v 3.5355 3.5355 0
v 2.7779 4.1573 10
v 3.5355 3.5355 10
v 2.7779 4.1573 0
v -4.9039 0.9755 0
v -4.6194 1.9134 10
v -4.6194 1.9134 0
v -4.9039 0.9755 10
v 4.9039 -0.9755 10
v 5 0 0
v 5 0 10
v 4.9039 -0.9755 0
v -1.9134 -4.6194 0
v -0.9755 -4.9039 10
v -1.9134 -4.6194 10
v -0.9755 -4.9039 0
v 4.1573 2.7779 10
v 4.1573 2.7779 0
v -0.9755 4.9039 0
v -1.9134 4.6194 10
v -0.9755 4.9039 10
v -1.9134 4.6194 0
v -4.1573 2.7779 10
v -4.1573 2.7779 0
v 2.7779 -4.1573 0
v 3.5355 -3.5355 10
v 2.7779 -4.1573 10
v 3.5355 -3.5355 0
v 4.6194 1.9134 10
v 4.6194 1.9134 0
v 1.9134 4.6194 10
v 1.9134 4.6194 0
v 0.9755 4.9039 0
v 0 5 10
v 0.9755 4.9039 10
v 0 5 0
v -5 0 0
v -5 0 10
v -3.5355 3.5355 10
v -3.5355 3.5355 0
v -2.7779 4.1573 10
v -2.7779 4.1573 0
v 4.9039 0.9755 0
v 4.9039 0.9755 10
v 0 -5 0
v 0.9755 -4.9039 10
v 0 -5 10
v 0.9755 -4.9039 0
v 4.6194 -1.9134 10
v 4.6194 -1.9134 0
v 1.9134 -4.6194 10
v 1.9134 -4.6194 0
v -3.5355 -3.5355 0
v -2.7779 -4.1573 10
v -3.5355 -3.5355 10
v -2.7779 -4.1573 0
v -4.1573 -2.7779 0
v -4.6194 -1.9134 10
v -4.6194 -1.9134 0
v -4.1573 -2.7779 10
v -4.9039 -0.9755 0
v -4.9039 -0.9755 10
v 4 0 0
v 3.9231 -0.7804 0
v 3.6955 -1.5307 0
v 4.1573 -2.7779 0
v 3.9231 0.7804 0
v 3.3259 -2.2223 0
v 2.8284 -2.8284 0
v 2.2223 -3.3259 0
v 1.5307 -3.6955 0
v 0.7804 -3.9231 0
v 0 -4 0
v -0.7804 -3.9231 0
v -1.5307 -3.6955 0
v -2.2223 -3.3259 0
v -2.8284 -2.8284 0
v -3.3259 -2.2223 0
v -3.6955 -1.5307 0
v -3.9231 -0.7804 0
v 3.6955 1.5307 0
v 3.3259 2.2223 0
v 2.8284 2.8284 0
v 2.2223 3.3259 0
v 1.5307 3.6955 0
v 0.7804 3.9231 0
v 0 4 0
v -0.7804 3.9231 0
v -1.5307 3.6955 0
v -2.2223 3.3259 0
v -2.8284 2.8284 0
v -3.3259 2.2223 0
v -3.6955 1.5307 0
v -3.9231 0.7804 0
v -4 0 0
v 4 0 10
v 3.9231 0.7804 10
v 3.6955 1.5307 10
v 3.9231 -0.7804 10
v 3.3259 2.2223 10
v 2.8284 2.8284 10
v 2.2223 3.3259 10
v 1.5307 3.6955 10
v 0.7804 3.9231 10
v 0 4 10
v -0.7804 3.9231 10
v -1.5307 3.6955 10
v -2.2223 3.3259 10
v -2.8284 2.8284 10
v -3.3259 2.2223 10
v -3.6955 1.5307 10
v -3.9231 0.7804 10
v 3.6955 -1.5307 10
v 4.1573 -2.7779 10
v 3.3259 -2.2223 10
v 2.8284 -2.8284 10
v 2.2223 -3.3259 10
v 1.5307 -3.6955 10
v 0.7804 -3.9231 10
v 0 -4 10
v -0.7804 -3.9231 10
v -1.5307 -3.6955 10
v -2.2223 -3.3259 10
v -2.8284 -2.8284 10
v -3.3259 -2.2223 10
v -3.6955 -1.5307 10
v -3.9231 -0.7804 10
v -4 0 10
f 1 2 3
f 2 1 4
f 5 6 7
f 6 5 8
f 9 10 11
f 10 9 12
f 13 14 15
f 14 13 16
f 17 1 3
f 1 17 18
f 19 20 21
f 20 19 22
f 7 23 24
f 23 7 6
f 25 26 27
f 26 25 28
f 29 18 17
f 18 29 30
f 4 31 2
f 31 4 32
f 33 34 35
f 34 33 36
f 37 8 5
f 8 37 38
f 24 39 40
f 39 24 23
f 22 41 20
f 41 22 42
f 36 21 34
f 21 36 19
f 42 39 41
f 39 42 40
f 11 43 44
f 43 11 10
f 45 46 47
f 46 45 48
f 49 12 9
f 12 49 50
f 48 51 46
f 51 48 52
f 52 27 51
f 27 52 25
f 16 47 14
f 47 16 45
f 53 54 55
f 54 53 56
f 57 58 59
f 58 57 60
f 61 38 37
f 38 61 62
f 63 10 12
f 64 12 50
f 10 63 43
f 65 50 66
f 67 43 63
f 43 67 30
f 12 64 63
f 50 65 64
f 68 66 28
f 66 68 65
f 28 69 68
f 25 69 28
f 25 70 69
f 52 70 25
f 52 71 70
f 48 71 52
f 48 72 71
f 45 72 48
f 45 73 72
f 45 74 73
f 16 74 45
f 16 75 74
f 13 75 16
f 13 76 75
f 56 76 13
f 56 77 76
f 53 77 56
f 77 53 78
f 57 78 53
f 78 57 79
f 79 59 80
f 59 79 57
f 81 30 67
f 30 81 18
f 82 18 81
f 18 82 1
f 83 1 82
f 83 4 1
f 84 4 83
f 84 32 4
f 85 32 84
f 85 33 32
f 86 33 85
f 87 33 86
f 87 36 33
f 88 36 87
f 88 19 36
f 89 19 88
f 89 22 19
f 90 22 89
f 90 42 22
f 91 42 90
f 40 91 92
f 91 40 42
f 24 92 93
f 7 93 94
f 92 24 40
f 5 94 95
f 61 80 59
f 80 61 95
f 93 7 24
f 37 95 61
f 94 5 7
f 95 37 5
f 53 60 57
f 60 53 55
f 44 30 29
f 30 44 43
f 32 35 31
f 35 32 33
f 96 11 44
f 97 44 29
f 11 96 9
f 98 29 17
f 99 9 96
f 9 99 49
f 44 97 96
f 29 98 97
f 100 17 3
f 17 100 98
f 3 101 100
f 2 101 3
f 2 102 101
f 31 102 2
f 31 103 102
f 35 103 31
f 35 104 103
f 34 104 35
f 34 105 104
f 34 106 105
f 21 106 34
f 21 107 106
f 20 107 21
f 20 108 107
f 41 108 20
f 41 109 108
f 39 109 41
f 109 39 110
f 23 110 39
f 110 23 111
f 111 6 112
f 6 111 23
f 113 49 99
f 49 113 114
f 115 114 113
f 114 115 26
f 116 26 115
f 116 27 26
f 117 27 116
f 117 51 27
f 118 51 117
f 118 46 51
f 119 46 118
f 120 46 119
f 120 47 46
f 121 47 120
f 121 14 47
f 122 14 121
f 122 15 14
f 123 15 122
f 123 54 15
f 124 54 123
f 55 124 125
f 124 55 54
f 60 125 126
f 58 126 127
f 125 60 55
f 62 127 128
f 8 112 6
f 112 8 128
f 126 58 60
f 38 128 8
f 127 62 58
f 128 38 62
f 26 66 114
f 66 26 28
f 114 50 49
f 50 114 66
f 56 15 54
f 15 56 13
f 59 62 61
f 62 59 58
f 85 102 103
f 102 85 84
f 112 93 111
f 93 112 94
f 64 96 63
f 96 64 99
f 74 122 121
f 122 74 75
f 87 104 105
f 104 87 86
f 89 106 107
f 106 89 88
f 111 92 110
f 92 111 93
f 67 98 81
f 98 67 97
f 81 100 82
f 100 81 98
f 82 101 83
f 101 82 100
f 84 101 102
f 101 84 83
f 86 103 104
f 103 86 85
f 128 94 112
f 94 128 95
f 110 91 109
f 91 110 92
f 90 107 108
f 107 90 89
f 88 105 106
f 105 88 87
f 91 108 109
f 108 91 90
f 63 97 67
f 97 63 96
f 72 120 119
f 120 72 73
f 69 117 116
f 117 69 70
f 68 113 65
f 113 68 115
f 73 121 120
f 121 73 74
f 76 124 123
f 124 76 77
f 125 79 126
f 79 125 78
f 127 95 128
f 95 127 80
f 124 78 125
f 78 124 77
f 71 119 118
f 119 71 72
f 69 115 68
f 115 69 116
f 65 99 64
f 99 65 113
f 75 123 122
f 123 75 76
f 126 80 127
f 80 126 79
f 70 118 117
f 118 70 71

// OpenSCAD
$fn=32;

module spacer(height = 10, inner_radius = 4, thickness = 1) {
    outer_radius = thickness + inner_radius;
    difference() {
        cylinder(h=height, r=outer_radius);
        cylinder(h=height, r=inner_radius);
    }
}

spacer();
